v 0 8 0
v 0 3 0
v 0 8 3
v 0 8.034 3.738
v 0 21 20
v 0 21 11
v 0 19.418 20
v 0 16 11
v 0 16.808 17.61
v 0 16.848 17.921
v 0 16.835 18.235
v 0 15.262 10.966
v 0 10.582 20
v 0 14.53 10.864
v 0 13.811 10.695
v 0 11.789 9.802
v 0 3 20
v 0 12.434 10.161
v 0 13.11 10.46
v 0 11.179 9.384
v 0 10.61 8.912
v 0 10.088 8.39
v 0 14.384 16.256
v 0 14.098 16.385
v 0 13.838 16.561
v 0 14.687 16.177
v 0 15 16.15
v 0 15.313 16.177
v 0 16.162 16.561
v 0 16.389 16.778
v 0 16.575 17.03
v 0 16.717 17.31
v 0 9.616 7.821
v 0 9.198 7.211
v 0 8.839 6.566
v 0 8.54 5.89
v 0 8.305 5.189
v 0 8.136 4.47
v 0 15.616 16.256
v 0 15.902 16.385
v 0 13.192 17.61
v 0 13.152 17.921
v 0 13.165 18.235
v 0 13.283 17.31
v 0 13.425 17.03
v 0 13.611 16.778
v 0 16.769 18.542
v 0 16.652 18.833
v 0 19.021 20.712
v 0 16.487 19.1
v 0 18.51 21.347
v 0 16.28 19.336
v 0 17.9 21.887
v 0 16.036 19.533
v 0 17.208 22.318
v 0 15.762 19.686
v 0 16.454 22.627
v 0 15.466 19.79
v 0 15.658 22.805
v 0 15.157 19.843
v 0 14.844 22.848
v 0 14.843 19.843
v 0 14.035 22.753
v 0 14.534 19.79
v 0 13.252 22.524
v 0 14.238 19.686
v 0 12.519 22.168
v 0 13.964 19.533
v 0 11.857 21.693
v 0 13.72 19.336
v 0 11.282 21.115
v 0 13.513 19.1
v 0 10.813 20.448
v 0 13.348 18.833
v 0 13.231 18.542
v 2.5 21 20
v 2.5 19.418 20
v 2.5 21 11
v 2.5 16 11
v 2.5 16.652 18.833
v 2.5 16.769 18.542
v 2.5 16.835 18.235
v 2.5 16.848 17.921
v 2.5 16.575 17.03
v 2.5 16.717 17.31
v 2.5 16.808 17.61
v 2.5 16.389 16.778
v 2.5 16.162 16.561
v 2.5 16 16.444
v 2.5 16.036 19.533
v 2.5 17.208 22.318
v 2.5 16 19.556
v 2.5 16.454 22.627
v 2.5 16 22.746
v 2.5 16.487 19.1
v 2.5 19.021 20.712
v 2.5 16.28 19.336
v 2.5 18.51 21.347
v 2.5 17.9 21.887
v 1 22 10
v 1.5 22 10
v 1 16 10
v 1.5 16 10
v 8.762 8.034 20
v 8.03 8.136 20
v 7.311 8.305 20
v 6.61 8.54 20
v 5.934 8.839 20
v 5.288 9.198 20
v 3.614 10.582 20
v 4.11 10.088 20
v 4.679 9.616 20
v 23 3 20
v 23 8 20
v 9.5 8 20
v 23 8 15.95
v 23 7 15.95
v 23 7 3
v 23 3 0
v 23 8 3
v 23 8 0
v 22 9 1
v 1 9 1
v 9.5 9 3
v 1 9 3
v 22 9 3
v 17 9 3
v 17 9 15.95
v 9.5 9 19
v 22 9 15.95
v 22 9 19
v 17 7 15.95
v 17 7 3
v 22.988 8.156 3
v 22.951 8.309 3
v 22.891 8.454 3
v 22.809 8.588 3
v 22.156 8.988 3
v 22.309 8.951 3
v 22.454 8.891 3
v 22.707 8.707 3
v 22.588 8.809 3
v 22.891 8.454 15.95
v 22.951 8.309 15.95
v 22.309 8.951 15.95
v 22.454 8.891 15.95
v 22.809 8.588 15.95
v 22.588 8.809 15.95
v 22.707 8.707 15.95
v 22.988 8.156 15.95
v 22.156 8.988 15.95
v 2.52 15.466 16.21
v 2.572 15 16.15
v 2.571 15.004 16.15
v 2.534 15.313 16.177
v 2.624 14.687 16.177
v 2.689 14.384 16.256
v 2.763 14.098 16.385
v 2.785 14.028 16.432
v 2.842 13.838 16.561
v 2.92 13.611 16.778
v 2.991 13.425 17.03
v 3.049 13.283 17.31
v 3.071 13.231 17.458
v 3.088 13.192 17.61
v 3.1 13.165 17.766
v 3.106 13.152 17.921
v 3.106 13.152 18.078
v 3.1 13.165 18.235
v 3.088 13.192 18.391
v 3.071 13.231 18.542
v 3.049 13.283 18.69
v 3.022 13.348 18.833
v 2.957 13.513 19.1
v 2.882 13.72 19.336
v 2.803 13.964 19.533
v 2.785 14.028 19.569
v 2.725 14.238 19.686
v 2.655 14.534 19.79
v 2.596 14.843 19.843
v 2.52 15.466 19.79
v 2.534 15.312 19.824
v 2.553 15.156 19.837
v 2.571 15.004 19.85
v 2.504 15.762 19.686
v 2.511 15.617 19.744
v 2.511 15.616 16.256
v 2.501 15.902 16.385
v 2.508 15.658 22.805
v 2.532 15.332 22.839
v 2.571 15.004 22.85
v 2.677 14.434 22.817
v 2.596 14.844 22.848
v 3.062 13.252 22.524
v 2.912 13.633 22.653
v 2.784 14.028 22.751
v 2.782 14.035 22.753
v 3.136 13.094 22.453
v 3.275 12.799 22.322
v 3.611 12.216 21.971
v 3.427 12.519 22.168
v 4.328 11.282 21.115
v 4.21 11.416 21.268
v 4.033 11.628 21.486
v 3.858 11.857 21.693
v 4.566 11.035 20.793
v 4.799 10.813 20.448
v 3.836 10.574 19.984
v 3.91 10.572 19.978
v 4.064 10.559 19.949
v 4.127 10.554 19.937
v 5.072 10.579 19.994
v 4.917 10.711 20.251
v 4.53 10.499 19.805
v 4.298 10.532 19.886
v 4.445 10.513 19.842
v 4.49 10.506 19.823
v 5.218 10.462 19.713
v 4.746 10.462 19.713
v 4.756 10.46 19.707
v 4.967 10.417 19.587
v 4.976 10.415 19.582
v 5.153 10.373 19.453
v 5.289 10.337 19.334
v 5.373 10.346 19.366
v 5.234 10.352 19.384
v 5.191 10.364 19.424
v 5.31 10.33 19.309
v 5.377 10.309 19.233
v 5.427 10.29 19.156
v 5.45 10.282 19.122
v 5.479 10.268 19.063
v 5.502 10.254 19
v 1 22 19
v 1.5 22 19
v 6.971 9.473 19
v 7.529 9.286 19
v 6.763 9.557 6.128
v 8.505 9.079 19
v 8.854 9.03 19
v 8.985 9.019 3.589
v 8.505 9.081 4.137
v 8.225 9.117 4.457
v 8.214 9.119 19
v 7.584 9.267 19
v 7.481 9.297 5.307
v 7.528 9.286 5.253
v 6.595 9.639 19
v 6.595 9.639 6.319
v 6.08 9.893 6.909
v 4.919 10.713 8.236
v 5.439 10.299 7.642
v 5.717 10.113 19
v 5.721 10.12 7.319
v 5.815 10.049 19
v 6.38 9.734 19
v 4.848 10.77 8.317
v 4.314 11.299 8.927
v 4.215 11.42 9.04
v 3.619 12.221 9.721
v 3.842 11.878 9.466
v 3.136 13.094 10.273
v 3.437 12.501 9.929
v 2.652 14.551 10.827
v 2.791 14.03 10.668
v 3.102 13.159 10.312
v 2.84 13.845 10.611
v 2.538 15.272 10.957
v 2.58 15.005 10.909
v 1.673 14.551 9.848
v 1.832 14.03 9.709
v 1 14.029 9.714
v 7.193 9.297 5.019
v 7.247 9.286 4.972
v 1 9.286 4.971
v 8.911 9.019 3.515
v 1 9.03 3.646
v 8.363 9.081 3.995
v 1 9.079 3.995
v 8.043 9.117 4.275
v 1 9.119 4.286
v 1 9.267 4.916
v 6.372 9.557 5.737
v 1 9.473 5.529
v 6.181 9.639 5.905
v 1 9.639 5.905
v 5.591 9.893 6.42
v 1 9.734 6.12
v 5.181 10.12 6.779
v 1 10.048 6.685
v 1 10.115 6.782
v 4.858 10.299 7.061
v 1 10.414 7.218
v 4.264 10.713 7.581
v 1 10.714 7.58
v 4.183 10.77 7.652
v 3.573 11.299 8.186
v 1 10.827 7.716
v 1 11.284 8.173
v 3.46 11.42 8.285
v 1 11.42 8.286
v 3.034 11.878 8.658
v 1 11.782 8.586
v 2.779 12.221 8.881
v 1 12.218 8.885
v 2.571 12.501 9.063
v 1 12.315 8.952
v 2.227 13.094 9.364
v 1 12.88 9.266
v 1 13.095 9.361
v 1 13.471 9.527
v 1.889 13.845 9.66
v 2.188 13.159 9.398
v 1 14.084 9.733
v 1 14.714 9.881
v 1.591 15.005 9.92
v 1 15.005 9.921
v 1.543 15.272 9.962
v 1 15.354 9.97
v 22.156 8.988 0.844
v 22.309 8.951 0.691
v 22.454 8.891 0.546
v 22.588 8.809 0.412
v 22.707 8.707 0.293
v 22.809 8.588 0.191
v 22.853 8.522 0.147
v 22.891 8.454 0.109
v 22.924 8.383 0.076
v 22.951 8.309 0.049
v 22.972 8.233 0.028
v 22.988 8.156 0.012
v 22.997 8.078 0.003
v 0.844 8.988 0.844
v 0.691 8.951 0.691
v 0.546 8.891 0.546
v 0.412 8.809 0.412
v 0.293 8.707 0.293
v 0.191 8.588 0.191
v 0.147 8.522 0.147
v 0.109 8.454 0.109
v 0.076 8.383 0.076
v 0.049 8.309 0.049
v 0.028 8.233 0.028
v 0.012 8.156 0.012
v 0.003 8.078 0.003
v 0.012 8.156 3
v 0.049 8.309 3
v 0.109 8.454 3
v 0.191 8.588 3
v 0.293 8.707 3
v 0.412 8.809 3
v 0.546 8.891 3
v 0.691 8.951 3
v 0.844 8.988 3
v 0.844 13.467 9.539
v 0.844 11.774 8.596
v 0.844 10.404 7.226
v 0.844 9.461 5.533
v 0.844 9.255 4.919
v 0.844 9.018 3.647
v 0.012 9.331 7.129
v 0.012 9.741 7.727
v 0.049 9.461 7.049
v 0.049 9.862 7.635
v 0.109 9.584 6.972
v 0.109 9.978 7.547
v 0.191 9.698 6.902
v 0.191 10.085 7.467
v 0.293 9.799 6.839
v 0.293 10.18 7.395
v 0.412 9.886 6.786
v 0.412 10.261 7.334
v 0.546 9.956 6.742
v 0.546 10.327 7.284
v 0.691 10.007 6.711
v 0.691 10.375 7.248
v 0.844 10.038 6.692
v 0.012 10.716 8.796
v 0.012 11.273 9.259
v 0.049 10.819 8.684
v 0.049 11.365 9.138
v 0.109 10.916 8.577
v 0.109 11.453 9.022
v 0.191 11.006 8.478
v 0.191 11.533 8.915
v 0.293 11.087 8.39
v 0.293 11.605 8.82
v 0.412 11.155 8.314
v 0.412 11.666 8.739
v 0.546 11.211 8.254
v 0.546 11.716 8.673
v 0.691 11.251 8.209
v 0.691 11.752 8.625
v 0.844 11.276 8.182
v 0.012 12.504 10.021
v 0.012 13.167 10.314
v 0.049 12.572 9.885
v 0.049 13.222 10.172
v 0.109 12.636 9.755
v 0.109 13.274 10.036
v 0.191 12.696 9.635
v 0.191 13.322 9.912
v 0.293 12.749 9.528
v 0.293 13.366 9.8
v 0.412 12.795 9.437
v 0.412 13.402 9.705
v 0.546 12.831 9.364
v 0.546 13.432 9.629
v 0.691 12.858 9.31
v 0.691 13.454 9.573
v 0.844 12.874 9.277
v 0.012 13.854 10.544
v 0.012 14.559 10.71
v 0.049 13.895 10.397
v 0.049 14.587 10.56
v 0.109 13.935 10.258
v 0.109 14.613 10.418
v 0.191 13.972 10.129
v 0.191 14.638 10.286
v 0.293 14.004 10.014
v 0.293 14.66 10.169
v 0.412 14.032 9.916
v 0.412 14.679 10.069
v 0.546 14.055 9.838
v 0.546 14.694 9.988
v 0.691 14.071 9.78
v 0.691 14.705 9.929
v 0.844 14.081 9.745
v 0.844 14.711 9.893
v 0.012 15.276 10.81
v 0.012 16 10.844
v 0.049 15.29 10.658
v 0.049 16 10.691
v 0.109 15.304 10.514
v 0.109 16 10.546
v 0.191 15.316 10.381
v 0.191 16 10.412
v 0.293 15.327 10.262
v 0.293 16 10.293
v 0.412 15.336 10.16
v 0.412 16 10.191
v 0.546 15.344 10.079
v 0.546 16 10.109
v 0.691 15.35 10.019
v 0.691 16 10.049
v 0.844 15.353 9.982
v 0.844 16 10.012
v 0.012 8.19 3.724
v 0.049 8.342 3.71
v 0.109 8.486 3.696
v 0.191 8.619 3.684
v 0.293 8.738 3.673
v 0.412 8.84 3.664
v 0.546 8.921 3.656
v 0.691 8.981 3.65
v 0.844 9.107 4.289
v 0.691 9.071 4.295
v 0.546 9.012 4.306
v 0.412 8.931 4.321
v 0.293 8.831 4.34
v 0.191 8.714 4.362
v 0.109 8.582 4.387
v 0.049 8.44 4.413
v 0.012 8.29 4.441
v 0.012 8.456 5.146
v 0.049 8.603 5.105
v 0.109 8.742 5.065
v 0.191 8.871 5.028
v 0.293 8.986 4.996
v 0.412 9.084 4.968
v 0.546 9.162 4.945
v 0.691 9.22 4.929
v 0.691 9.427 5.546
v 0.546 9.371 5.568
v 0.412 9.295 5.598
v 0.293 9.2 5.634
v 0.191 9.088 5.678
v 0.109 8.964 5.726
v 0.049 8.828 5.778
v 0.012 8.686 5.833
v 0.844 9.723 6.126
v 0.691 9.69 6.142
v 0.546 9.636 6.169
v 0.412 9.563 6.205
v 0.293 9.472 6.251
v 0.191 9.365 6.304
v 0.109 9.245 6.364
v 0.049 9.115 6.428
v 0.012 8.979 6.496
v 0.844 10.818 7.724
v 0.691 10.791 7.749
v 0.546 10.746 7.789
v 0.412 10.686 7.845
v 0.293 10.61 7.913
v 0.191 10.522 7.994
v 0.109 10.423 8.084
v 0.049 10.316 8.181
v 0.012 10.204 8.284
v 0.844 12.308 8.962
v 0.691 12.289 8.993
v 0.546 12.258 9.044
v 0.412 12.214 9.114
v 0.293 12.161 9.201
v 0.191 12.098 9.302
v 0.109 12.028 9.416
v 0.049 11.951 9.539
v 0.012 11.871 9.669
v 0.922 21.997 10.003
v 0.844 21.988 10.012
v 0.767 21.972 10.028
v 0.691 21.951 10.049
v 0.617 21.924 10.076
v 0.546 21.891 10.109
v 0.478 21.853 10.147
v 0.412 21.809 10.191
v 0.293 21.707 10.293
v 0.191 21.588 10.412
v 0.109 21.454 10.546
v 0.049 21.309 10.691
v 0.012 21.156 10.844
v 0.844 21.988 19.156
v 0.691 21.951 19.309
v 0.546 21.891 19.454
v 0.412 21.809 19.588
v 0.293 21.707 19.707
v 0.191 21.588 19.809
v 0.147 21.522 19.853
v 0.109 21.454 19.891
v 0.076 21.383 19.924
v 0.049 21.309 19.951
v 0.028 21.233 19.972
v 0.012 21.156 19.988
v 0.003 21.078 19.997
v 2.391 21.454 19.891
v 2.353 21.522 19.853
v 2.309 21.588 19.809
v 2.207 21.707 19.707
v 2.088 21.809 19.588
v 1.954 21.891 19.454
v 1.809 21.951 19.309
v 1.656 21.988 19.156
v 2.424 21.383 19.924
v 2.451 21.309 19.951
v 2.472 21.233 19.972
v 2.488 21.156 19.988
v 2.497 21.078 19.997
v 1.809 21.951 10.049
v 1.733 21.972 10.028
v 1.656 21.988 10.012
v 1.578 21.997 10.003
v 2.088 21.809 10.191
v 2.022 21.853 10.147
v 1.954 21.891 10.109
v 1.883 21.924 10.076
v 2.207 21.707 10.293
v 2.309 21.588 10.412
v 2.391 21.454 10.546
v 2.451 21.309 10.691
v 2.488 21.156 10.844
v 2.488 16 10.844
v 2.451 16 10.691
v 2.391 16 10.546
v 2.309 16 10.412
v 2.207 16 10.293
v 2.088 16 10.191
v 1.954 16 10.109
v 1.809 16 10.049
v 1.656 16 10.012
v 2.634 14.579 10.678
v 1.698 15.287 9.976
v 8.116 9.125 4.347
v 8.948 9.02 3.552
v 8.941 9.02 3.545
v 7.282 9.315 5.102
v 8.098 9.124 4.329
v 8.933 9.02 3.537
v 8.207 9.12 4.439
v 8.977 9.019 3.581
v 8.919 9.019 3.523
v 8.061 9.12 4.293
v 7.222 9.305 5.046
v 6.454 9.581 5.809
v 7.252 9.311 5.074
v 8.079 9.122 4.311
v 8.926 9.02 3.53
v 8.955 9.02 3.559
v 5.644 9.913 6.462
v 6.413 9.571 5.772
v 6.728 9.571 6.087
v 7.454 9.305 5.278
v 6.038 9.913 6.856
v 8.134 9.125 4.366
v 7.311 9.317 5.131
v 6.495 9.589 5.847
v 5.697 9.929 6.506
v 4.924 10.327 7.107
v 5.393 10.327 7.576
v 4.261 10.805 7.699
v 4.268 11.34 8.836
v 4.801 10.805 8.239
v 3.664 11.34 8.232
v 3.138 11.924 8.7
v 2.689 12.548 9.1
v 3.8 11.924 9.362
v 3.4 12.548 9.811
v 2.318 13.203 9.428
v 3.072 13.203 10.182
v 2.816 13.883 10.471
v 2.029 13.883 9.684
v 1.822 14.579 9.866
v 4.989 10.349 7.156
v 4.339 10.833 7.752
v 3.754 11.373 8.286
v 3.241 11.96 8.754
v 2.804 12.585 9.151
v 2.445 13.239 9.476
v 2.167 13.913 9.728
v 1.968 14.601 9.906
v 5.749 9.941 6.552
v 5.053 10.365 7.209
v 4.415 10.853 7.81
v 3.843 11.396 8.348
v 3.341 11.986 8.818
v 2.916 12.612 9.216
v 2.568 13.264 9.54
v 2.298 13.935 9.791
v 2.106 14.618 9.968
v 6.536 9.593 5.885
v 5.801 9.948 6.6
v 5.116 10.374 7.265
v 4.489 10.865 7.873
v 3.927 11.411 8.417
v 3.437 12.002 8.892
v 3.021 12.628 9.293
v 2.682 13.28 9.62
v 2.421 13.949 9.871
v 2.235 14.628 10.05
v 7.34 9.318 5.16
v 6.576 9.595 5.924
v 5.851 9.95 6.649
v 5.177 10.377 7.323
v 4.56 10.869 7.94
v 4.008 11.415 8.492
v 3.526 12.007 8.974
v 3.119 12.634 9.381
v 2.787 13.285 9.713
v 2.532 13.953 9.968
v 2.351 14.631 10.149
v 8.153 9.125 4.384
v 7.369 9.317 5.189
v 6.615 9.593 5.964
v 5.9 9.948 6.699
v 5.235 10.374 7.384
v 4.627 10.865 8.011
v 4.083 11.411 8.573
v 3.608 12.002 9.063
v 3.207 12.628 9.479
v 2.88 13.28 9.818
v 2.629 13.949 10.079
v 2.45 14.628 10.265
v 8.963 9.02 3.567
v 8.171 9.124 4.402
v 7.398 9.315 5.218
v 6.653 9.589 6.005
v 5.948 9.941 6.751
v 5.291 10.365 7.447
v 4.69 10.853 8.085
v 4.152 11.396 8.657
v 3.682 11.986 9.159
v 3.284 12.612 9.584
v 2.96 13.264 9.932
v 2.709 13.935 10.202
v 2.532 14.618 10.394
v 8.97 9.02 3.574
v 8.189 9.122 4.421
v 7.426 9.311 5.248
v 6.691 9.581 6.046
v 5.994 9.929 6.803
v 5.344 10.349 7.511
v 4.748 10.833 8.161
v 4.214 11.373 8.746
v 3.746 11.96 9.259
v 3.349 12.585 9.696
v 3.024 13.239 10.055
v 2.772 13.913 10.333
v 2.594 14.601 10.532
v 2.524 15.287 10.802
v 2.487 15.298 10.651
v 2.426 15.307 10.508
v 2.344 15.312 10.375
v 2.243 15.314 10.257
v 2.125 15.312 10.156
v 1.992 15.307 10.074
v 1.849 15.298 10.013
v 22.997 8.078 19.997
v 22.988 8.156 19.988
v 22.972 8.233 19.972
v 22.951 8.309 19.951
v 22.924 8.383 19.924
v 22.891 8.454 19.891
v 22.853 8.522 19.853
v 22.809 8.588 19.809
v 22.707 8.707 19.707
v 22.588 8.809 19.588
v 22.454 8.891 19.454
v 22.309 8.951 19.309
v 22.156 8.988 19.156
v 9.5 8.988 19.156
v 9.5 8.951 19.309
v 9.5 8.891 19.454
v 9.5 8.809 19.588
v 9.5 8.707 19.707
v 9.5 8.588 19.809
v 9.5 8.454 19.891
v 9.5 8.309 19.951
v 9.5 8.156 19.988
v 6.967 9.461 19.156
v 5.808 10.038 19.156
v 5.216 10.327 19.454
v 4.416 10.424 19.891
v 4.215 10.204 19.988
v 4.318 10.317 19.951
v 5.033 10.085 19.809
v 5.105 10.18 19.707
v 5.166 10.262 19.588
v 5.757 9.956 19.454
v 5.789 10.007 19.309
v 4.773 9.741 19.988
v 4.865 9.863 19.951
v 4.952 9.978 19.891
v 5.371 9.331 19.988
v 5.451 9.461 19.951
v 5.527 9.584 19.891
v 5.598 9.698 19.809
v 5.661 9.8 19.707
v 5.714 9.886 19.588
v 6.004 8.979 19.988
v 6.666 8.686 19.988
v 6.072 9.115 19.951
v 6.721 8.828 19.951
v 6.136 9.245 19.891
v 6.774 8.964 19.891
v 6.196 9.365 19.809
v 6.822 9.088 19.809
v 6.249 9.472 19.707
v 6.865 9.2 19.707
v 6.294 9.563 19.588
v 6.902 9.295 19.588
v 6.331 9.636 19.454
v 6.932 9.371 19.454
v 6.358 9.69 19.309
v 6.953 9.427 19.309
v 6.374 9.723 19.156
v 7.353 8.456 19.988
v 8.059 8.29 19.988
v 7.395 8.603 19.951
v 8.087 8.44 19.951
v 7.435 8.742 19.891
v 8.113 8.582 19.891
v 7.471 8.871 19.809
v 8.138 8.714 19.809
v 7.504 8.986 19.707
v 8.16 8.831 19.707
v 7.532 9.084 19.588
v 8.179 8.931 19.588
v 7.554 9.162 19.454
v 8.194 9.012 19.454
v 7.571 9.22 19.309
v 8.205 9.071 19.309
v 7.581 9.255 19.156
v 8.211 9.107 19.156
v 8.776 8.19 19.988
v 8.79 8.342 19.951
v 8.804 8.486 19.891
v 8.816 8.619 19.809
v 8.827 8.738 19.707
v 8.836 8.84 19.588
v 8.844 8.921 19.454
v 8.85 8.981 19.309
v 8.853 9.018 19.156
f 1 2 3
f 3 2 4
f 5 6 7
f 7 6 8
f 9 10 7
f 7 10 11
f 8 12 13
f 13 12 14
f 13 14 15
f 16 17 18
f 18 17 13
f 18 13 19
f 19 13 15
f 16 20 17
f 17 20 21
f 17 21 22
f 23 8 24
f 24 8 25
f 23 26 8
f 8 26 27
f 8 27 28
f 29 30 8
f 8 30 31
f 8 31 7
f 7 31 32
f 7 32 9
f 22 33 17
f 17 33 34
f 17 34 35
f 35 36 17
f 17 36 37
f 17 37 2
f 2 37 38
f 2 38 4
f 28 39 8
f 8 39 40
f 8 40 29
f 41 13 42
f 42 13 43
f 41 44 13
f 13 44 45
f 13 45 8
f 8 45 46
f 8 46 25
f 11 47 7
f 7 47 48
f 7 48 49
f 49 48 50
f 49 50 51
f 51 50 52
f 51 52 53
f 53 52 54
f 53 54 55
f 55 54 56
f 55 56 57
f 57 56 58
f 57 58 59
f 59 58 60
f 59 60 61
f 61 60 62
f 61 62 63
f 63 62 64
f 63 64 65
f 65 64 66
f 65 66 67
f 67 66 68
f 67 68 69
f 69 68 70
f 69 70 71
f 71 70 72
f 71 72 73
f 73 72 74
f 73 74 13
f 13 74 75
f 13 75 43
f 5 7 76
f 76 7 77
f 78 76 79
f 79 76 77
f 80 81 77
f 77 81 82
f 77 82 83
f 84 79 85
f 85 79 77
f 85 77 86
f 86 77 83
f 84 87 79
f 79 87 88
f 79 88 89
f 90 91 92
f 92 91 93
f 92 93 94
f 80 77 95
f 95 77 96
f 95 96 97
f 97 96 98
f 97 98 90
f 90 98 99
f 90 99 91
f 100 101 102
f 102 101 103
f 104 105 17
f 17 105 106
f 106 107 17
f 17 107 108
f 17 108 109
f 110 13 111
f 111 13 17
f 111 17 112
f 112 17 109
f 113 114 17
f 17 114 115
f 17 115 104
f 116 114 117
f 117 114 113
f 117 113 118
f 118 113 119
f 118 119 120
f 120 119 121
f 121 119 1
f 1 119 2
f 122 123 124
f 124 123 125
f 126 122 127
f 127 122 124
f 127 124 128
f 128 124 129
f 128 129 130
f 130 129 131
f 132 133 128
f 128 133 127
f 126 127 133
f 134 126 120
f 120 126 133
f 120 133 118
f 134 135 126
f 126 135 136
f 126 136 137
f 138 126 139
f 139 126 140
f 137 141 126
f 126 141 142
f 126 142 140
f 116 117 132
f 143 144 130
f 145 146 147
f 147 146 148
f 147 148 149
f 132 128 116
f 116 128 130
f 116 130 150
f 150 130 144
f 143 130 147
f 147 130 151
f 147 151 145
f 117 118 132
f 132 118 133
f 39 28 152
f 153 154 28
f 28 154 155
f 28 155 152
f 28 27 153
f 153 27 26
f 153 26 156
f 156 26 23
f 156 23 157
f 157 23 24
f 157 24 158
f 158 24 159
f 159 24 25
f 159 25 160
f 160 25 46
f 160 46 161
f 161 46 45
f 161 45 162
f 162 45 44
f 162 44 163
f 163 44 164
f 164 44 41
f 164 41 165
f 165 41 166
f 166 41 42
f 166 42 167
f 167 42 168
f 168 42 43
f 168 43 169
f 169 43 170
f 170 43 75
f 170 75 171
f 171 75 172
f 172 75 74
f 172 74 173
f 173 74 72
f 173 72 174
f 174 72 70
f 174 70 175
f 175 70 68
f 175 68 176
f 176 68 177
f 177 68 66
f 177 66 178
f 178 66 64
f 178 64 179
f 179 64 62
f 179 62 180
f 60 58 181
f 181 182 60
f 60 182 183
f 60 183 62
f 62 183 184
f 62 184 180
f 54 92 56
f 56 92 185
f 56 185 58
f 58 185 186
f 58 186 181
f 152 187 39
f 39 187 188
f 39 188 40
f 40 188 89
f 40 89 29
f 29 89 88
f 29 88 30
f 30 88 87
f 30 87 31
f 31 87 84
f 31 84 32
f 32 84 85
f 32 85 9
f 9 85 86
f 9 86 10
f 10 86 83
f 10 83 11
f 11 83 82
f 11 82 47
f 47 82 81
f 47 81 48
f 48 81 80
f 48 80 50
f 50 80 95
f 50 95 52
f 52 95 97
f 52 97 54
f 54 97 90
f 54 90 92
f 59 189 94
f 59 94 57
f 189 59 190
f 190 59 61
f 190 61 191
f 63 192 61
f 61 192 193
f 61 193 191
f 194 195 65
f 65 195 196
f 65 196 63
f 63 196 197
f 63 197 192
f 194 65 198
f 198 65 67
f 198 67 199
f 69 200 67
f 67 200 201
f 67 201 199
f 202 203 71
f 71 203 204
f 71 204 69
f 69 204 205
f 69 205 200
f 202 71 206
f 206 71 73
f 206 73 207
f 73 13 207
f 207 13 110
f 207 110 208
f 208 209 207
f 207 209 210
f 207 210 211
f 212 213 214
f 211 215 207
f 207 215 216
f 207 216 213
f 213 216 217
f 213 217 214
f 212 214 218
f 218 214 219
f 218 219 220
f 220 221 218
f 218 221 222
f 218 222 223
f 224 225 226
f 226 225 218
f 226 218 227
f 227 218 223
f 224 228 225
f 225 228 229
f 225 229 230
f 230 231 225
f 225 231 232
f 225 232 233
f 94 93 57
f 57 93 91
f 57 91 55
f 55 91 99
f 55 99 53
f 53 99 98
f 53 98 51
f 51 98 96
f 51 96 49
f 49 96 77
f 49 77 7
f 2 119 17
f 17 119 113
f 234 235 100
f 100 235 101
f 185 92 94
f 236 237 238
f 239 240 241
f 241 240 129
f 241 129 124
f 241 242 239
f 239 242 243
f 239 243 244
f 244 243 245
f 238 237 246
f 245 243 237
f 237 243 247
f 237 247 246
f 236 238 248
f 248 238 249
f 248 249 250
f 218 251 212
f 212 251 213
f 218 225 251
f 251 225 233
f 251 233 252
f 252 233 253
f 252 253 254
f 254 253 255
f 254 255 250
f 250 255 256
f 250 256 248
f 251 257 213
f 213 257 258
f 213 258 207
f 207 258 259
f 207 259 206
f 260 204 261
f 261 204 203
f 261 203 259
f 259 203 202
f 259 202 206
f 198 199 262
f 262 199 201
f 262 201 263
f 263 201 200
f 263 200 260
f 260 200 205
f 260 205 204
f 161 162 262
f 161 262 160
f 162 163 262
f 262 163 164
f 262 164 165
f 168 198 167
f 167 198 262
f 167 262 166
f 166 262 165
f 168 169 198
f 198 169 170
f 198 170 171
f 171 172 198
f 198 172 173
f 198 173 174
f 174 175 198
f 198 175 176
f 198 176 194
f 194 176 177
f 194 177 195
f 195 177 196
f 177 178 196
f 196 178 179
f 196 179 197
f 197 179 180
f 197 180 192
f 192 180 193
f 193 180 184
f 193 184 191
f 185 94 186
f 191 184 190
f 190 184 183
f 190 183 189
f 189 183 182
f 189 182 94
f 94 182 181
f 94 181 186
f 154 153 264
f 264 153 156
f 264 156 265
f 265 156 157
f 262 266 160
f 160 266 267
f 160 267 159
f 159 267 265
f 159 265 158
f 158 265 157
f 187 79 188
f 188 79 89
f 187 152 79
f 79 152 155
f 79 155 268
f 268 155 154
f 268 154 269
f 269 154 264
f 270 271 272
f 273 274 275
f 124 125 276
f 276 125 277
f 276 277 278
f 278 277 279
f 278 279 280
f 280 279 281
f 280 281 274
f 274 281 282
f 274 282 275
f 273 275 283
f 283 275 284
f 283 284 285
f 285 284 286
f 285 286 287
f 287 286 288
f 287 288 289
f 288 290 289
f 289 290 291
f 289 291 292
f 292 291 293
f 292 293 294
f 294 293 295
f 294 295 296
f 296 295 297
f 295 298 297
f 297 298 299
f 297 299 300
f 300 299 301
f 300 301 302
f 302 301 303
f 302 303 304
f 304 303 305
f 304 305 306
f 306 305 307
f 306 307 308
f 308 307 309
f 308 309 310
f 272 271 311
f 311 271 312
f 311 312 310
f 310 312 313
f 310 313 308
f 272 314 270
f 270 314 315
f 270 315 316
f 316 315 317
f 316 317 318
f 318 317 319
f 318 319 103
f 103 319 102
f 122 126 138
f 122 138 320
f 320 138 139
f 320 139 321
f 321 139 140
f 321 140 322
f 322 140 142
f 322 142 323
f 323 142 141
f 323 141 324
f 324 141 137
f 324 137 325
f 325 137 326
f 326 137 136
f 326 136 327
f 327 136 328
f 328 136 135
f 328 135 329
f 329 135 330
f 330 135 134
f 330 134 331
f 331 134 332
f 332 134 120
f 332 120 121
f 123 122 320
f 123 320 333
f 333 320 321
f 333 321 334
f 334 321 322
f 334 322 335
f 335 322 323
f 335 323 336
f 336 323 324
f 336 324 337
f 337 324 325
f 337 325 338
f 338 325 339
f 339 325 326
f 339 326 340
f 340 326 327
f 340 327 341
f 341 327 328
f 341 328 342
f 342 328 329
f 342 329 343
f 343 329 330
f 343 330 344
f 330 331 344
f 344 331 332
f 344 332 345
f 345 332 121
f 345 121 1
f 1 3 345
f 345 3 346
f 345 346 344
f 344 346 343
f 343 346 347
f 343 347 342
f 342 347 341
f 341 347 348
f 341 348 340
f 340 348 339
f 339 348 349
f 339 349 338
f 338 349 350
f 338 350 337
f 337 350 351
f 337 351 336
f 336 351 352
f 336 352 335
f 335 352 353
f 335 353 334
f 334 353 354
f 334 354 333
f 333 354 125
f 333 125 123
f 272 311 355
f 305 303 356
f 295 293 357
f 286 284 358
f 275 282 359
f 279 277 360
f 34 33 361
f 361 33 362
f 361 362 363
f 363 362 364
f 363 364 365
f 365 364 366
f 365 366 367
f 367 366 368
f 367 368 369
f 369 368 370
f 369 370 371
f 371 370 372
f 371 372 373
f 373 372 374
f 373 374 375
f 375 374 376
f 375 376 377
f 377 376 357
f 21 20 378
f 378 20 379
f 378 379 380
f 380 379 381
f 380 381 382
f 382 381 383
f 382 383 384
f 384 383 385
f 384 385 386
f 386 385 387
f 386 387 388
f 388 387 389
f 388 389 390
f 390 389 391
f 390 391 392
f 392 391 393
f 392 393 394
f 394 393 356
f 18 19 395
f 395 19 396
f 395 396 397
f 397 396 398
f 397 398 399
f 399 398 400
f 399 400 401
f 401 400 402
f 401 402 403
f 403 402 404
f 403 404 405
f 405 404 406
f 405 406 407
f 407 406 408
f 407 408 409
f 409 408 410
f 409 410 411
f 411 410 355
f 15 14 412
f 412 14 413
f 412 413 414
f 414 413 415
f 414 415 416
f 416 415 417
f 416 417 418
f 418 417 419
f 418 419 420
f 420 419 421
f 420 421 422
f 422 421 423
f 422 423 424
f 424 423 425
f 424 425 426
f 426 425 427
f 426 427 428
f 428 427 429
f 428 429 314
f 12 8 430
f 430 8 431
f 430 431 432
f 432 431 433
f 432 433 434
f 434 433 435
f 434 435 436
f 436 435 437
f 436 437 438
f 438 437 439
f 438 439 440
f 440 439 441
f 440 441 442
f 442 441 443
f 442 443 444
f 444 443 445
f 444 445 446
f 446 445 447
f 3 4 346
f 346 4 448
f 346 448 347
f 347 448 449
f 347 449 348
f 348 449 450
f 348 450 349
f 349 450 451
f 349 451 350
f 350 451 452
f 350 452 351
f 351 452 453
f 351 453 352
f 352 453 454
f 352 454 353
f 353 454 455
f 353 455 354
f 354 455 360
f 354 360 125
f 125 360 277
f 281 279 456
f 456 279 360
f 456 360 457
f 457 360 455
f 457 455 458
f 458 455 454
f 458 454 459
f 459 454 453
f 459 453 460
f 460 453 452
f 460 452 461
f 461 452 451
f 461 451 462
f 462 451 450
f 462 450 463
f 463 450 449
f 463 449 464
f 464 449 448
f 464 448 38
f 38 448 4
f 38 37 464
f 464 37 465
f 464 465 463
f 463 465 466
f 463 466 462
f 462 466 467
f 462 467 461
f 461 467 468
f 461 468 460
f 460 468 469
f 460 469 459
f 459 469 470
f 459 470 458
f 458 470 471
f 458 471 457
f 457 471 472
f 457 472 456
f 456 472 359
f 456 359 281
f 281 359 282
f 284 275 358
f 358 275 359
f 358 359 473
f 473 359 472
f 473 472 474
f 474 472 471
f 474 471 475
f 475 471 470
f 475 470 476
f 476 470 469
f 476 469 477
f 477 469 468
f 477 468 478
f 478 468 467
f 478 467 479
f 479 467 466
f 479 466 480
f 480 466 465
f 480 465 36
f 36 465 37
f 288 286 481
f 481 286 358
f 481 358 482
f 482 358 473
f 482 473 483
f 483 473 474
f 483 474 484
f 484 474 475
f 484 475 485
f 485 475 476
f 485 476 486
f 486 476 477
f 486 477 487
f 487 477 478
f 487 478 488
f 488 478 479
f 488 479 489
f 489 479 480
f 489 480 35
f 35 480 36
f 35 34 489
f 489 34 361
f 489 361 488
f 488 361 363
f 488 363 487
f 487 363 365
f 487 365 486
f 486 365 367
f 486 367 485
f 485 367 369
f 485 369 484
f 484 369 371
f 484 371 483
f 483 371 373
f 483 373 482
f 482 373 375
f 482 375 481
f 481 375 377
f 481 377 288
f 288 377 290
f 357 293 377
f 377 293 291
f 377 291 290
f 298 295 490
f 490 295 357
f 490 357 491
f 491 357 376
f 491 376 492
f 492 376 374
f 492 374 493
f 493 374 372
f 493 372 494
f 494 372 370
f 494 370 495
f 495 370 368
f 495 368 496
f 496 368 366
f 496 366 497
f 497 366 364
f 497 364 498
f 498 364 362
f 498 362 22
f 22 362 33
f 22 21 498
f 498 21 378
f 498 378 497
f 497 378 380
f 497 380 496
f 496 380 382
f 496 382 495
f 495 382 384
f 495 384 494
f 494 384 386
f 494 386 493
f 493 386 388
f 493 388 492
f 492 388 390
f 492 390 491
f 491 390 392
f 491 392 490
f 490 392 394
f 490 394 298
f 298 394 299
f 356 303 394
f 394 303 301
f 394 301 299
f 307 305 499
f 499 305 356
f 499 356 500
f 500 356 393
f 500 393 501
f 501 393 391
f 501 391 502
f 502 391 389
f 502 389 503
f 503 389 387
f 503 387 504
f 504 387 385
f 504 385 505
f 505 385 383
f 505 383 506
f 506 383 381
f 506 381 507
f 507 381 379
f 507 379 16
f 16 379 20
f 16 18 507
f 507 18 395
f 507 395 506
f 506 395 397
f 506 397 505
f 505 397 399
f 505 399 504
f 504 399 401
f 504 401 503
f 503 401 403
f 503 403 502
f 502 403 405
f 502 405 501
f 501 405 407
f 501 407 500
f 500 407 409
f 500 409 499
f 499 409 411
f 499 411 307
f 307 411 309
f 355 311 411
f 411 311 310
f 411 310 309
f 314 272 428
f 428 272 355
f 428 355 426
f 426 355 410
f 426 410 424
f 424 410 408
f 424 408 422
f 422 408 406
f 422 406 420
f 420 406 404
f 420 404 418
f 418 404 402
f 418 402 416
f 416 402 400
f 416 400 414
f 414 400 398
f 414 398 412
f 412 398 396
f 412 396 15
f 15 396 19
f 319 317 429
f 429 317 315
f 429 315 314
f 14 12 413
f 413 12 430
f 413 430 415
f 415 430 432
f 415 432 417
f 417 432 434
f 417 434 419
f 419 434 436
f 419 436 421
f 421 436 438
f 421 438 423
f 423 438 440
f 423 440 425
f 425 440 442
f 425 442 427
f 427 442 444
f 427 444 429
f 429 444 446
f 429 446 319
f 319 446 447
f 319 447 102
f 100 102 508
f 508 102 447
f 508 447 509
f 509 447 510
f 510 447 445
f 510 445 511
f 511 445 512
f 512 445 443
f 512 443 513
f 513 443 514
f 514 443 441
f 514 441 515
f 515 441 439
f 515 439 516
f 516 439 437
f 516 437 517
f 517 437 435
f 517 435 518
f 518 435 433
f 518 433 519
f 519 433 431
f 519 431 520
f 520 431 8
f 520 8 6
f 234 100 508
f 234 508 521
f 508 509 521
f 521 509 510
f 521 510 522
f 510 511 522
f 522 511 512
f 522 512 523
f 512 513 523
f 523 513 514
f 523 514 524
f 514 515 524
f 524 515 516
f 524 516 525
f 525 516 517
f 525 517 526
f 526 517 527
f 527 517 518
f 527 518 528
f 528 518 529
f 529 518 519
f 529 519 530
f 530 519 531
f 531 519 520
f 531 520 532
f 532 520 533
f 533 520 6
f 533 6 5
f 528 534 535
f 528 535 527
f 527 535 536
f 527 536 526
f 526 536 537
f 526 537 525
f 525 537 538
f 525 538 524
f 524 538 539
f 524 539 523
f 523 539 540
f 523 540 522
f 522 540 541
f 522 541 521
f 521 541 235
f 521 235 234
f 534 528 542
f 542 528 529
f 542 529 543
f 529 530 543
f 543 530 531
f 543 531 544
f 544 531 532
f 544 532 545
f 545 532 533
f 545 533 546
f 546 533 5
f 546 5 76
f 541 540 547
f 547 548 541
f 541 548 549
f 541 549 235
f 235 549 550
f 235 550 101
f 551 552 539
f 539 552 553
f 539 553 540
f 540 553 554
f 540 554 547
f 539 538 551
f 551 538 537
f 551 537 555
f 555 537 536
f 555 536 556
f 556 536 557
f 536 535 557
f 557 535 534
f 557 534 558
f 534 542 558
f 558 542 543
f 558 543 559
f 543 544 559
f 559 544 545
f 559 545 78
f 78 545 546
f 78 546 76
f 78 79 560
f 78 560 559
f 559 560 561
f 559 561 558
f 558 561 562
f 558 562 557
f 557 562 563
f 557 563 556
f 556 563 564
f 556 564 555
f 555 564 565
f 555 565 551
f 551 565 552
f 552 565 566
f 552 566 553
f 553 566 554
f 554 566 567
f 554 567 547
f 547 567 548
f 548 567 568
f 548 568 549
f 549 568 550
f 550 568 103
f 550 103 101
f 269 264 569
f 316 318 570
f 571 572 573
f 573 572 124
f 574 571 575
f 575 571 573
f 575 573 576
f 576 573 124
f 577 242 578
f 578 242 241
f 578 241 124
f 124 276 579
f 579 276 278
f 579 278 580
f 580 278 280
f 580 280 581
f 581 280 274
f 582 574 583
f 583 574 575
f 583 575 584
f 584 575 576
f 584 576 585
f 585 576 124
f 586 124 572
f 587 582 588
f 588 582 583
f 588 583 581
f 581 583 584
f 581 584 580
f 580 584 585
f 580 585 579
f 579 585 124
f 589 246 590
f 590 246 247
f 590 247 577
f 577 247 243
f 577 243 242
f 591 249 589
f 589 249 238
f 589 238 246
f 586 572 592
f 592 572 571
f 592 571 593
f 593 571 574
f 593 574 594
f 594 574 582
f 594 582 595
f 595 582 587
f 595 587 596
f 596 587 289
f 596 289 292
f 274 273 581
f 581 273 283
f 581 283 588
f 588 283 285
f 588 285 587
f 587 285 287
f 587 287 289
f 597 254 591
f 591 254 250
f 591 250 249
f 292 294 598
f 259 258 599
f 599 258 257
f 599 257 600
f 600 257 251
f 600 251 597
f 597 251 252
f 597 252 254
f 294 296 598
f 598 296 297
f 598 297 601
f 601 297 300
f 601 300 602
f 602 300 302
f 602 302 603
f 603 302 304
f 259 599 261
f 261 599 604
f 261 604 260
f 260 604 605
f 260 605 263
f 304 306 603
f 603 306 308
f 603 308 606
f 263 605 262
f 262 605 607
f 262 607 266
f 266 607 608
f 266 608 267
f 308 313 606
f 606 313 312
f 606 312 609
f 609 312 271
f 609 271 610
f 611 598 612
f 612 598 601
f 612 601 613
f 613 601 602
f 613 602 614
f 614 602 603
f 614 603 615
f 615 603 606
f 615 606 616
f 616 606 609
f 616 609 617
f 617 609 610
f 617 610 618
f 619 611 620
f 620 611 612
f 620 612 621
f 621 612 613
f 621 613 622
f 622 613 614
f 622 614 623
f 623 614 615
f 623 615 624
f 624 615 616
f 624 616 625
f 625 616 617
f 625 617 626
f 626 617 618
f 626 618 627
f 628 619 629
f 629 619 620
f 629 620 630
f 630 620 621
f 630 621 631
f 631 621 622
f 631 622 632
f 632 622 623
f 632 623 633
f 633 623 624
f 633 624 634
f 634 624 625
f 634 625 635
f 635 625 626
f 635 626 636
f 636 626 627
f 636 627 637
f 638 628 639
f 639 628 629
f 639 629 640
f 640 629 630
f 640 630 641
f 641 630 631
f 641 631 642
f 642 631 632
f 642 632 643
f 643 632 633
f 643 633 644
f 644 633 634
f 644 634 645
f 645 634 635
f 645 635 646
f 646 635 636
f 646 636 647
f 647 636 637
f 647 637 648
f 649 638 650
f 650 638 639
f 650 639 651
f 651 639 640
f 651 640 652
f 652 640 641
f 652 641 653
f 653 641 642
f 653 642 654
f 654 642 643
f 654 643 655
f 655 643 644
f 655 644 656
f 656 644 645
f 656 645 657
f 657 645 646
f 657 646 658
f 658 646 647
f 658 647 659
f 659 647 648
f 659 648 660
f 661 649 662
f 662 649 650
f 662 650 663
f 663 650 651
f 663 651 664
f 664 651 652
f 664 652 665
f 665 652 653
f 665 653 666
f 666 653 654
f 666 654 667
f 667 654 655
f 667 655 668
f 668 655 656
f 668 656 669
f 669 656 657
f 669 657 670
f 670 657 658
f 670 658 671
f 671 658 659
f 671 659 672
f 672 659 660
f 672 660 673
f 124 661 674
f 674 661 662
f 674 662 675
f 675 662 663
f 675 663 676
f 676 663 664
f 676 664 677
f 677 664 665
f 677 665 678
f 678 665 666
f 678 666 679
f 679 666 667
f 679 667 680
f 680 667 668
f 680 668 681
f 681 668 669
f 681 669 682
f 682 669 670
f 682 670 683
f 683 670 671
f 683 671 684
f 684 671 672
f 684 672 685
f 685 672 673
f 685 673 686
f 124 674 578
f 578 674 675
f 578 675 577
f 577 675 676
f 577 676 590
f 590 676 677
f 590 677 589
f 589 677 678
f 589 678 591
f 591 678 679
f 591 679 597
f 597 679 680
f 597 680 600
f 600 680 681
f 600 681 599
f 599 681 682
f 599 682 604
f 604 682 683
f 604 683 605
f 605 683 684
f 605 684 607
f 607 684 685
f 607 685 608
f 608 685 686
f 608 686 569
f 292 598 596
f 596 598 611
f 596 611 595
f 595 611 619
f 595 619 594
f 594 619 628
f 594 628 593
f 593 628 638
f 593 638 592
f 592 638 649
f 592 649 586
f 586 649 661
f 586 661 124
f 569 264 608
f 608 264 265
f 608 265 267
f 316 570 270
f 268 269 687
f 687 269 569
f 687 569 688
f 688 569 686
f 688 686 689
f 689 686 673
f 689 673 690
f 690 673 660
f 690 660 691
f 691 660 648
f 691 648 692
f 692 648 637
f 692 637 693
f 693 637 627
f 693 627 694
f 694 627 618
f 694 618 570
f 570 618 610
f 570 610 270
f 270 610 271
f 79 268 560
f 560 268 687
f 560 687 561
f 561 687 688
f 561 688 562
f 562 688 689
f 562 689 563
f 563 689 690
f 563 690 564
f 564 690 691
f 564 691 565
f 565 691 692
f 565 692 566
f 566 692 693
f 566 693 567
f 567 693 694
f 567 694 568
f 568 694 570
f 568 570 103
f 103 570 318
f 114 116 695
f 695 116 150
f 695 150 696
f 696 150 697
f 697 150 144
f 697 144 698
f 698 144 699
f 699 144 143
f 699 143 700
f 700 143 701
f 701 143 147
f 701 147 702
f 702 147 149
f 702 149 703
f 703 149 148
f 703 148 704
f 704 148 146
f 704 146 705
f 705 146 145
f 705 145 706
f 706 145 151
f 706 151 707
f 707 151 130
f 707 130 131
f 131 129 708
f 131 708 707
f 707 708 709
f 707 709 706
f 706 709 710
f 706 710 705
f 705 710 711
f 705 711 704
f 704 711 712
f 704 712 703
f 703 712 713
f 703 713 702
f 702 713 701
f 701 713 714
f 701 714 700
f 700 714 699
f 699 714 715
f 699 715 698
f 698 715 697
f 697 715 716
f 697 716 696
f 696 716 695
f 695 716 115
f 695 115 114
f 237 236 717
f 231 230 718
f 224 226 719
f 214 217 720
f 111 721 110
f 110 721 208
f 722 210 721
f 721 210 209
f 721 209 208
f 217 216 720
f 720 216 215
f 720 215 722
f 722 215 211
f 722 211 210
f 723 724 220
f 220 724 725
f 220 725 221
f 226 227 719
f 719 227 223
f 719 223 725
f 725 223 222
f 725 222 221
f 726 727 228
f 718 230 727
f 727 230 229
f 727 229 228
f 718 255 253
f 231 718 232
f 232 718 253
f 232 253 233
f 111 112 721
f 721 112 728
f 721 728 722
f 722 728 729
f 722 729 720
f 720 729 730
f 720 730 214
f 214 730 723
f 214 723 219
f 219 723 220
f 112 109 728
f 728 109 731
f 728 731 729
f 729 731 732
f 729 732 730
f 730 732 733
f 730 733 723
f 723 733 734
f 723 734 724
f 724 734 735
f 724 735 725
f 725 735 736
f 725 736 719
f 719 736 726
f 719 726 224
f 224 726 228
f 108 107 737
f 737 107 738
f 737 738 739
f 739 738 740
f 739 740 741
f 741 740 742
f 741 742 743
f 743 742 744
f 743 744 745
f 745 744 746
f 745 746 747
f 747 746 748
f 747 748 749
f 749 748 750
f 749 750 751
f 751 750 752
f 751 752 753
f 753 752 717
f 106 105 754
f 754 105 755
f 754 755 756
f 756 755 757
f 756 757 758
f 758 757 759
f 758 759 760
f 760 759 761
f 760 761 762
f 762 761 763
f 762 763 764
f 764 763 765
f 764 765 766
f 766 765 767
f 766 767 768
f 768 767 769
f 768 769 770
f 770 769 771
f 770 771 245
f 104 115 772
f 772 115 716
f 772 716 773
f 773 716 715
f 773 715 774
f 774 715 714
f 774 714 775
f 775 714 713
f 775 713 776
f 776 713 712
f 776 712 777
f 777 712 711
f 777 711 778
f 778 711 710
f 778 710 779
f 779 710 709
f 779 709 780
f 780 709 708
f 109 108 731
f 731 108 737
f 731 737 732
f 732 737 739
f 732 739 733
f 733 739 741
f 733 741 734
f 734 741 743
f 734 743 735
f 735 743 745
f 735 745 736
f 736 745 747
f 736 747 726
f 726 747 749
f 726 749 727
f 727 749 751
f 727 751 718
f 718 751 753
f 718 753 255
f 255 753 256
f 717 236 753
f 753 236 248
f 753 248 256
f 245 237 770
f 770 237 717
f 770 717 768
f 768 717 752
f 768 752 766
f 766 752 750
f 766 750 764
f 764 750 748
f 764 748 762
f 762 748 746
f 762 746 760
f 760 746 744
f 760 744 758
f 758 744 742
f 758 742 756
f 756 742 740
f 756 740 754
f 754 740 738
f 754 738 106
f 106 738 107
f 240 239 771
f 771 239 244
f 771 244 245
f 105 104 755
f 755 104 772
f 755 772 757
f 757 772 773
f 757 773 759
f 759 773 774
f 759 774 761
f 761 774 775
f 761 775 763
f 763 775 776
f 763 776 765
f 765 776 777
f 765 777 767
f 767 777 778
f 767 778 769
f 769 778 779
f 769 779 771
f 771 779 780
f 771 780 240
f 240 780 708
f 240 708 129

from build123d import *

# Parameters (mm, degrees)
CROQUIS1_W              = 23
CROQUIS1_H              = 20
SALIENTE_EXTRUIR1_DEPTH = 9
CROQUIS2_W              = 6
CROQUIS2_H              = 12.95
CORTAR_EXTRUIR1_DEPTH   = 2
CROQUIS3_W              = 2.5
CROQUIS3_H              = 20
SALIENTE_EXTRUIR3_DEPTH = 15
CROQUIS4_R              = 1.85
CORTAR_EXTRUIR4_DEPTH   = 2.5
SALIENTE_EXTRUIR7_DEPTH = 2.5
CROQUIS7_W              = 10
CROQUIS7_H              = 15
CORTAR_EXTRUIR5_DEPTH   = 2.5
CROQUIS8_W              = 23
CROQUIS8_H              = 20
CORTAR_EXTRUIR6_DEPTH   = 3
CROQUIS9_W              = 2.5
CROQUIS9_H              = 10
CORTAR_EXTRUIR7_DEPTH   = 2
REDONDEO1_R             = 7
REDONDEO2_R             = 1


with BuildPart() as part:
    # Croquis1 → Saliente-Extruir1 (new body)
    with BuildSketch(Plane(origin=(0, 0, 0), x_dir=(1, 0, 0), z_dir=(0, 1, 0))):
        with Locations((11.5, -10)):
            Rectangle(CROQUIS1_W, CROQUIS1_H)
    extrude(amount=SALIENTE_EXTRUIR1_DEPTH)

    # Croquis2 → Cortar-Extruir1 (cut)
    with BuildSketch(Plane(origin=(0, 9, 0), x_dir=(1, 0, 0), z_dir=(0, 1, 0))):
        with Locations((20, -9.475)):
            Rectangle(CROQUIS2_W, CROQUIS2_H)
    extrude(amount=-CORTAR_EXTRUIR1_DEPTH, mode=Mode.SUBTRACT)

    # Croquis3 → Saliente-Extruir3 (add)
    with BuildSketch(Plane(origin=(0, 9, 0), x_dir=(1, 0, 0), z_dir=(0, 1, 0))):
        with Locations((1.25, -10)):
            Rectangle(CROQUIS3_W, CROQUIS3_H)
    extrude(amount=SALIENTE_EXTRUIR3_DEPTH)

    # Croquis4 → Cortar-Extruir4 (cut)
    with BuildSketch(Plane(origin=(2.5, 0, 0), x_dir=(0, 0, -1), z_dir=(1, 0, 0))):
        with Locations((-18, 15)):
            Circle(CROQUIS4_R)
    extrude(amount=-CORTAR_EXTRUIR4_DEPTH, mode=Mode.SUBTRACT)

    # Croquis6 → Saliente-Extruir7 (add)
    with BuildSketch(Plane(origin=(2.5, 0, 0), x_dir=(0, 0, -1), z_dir=(1, 0, 0))):
        with BuildLine():
            Line((-20, 19.418427322), (-20, 10.581572678))
            ThreePointArc((-20, 10.581572678), (-22.85, 15), (-20, 19.418427322))
        make_face()
    extrude(amount=-SALIENTE_EXTRUIR7_DEPTH)

    # Croquis7 → Cortar-Extruir5 (cut)
    with BuildSketch(Plane(origin=(2.5, 0, 0), x_dir=(0, 0, -1), z_dir=(1, 0, 0))):
        with Locations((-5, 16.5)):
            Rectangle(CROQUIS7_W, CROQUIS7_H)
    extrude(amount=-CORTAR_EXTRUIR5_DEPTH, mode=Mode.SUBTRACT)

    # Croquis8 → Cortar-Extruir6 (cut)
    with BuildSketch(Plane.XZ):
        with Locations((11.5, 10)):
            Rectangle(CROQUIS8_W, CROQUIS8_H)
    extrude(amount=-CORTAR_EXTRUIR6_DEPTH, mode=Mode.SUBTRACT)

    # Croquis9 → Cortar-Extruir7 (cut)
    with BuildSketch(Plane(origin=(0, 24, 0), x_dir=(1, 0, 0), z_dir=(0, 1, 0))):
        with Locations((1.25, -15)):
            Rectangle(CROQUIS9_W, CROQUIS9_H)
    extrude(amount=-CORTAR_EXTRUIR7_DEPTH, mode=Mode.SUBTRACT)

    # Redondeo1
    # the kernel refuses this fillet: 7 mm, written as the material it adds along each edge
    with BuildSketch(Plane(origin=(2.5, 9, 10), x_dir=(0, 0, -1), z_dir=(-1, 0, 0))) as redondeo1_piece_1:
        with BuildLine():
            CenterArc((REDONDEO1_R, -REDONDEO1_R), REDONDEO1_R, 90, 90)
            Line((0, -REDONDEO1_R), (0, 0))
            Line((0, 0), (REDONDEO1_R, 0))
        make_face()
    extrude(amount=2.5)
    with BuildSketch(Plane(origin=(2.5, 9, 10), x_dir=(1, 0, 0), z_dir=(0, 0, 1))) as redondeo1_piece_2_section:
        with BuildLine():
            CenterArc((REDONDEO1_R, REDONDEO1_R), REDONDEO1_R, 180, 90)
            Line((0, REDONDEO1_R), (0, 0))
            Line((0, 0), (REDONDEO1_R, 0))
        make_face()
    redondeo1_piece_2 = extrude(amount=10, mode=Mode.PRIVATE)
    redondeo1_piece_2 = redondeo1_piece_2 - Plane(origin=(2.5, 15, 18), x_dir=(0, 0, -1), z_dir=(1, 0, 0)) * Cylinder(1.85, 48, mode=Mode.PRIVATE)
    add(redondeo1_piece_2)
    with BuildSketch(Plane(origin=(2.5, 9, -7.5), x_dir=(1, 0, 0), z_dir=(0, 0, 1))) as redondeo1_piece_3_section:
        with BuildLine():
            CenterArc((REDONDEO1_R, REDONDEO1_R), REDONDEO1_R, 180, 90)
            Line((0, REDONDEO1_R), (0, 0))
            Line((0, 0), (REDONDEO1_R, 0))
        make_face()
    redondeo1_piece_3 = extrude(amount=45, mode=Mode.PRIVATE)
    redondeo1_piece_3 = split(redondeo1_piece_3, bisect_by=Plane(origin=(2.5, 9, 20), z_dir=(0, 0, 1)), keep=Keep.TOP, mode=Mode.PRIVATE)
    redondeo1_piece_3 = redondeo1_piece_3 & Plane(origin=(2.5, 15, 18), x_dir=(0, -0.9110159426851695, 0.4123711340206198), z_dir=(1, 0, 0)) * Cylinder(4.85, 118, mode=Mode.PRIVATE)
    add(redondeo1_piece_3)
    with BuildSketch(Plane(origin=(2.5, 9, -7.5), x_dir=(1, 0, 0), z_dir=(0, 0, 1))) as redondeo1_piece_4a_section:
        with BuildLine():
            CenterArc((REDONDEO1_R, REDONDEO1_R), REDONDEO1_R, 180, 90)
            Line((0, REDONDEO1_R), (0, 0))
            Line((0, 0), (REDONDEO1_R, 0))
        make_face()
    redondeo1_piece_4a = extrude(amount=27.5, mode=Mode.PRIVATE)
    redondeo1_piece_4a = split(redondeo1_piece_4a, bisect_by=Plane(origin=(2.5, 9, 0), z_dir=(0, 0, 1)), keep=Keep.TOP, mode=Mode.PRIVATE)
    redondeo1_piece_4a = split(redondeo1_piece_4a, bisect_by=Plane(origin=(2.5, 9, 10), z_dir=(0, 0, -1)), keep=Keep.TOP, mode=Mode.PRIVATE)
    with BuildSketch(Plane(origin=(20, 9, 10), x_dir=(0, 0, -1), z_dir=(-1, 0, 0))) as redondeo1_piece_4b_section:
        with BuildLine():
            CenterArc((REDONDEO1_R, -REDONDEO1_R), REDONDEO1_R, 90, 90)
            Line((0, -REDONDEO1_R), (0, 0))
            Line((0, 0), (REDONDEO1_R, 0))
        make_face()
    redondeo1_piece_4b = extrude(amount=20, mode=Mode.PRIVATE)
    redondeo1_piece_4b = split(redondeo1_piece_4b, bisect_by=Plane(origin=(2.5, 9, 10), z_dir=(1, 0, 0)), keep=Keep.TOP, mode=Mode.PRIVATE)
    redondeo1_piece_4b = split(redondeo1_piece_4b, bisect_by=Plane(origin=(17, 9, 10), z_dir=(-1, 0, 0)), keep=Keep.TOP, mode=Mode.PRIVATE)
    redondeo1_piece_4 = redondeo1_piece_4a & redondeo1_piece_4b
    add(redondeo1_piece_4)

    # Redondeo2
    redondeo2_edges = [part.edges().sort_by_distance(p)[0] for p in [
        (4.977657648, 10.656927883, 7.522342352),
        (0, 19, 10),
        (0, 11.050252532, 7.949747468),
        (7.147234739, 9.40723915, 20),
        (1.25, 22, 20),
        (0, 22, 15),
        (2.5, 22, 15),
        (2.5, 19, 10),
        (23, 9, 1.5),
        (23, 9, 17.975),
        (11.5, 9, 0),
        (0, 9, 1.5),
        (16.25, 9, 20),
    ]]
    fillet(redondeo2_edges, radius=REDONDEO2_R)


solid = part.part
